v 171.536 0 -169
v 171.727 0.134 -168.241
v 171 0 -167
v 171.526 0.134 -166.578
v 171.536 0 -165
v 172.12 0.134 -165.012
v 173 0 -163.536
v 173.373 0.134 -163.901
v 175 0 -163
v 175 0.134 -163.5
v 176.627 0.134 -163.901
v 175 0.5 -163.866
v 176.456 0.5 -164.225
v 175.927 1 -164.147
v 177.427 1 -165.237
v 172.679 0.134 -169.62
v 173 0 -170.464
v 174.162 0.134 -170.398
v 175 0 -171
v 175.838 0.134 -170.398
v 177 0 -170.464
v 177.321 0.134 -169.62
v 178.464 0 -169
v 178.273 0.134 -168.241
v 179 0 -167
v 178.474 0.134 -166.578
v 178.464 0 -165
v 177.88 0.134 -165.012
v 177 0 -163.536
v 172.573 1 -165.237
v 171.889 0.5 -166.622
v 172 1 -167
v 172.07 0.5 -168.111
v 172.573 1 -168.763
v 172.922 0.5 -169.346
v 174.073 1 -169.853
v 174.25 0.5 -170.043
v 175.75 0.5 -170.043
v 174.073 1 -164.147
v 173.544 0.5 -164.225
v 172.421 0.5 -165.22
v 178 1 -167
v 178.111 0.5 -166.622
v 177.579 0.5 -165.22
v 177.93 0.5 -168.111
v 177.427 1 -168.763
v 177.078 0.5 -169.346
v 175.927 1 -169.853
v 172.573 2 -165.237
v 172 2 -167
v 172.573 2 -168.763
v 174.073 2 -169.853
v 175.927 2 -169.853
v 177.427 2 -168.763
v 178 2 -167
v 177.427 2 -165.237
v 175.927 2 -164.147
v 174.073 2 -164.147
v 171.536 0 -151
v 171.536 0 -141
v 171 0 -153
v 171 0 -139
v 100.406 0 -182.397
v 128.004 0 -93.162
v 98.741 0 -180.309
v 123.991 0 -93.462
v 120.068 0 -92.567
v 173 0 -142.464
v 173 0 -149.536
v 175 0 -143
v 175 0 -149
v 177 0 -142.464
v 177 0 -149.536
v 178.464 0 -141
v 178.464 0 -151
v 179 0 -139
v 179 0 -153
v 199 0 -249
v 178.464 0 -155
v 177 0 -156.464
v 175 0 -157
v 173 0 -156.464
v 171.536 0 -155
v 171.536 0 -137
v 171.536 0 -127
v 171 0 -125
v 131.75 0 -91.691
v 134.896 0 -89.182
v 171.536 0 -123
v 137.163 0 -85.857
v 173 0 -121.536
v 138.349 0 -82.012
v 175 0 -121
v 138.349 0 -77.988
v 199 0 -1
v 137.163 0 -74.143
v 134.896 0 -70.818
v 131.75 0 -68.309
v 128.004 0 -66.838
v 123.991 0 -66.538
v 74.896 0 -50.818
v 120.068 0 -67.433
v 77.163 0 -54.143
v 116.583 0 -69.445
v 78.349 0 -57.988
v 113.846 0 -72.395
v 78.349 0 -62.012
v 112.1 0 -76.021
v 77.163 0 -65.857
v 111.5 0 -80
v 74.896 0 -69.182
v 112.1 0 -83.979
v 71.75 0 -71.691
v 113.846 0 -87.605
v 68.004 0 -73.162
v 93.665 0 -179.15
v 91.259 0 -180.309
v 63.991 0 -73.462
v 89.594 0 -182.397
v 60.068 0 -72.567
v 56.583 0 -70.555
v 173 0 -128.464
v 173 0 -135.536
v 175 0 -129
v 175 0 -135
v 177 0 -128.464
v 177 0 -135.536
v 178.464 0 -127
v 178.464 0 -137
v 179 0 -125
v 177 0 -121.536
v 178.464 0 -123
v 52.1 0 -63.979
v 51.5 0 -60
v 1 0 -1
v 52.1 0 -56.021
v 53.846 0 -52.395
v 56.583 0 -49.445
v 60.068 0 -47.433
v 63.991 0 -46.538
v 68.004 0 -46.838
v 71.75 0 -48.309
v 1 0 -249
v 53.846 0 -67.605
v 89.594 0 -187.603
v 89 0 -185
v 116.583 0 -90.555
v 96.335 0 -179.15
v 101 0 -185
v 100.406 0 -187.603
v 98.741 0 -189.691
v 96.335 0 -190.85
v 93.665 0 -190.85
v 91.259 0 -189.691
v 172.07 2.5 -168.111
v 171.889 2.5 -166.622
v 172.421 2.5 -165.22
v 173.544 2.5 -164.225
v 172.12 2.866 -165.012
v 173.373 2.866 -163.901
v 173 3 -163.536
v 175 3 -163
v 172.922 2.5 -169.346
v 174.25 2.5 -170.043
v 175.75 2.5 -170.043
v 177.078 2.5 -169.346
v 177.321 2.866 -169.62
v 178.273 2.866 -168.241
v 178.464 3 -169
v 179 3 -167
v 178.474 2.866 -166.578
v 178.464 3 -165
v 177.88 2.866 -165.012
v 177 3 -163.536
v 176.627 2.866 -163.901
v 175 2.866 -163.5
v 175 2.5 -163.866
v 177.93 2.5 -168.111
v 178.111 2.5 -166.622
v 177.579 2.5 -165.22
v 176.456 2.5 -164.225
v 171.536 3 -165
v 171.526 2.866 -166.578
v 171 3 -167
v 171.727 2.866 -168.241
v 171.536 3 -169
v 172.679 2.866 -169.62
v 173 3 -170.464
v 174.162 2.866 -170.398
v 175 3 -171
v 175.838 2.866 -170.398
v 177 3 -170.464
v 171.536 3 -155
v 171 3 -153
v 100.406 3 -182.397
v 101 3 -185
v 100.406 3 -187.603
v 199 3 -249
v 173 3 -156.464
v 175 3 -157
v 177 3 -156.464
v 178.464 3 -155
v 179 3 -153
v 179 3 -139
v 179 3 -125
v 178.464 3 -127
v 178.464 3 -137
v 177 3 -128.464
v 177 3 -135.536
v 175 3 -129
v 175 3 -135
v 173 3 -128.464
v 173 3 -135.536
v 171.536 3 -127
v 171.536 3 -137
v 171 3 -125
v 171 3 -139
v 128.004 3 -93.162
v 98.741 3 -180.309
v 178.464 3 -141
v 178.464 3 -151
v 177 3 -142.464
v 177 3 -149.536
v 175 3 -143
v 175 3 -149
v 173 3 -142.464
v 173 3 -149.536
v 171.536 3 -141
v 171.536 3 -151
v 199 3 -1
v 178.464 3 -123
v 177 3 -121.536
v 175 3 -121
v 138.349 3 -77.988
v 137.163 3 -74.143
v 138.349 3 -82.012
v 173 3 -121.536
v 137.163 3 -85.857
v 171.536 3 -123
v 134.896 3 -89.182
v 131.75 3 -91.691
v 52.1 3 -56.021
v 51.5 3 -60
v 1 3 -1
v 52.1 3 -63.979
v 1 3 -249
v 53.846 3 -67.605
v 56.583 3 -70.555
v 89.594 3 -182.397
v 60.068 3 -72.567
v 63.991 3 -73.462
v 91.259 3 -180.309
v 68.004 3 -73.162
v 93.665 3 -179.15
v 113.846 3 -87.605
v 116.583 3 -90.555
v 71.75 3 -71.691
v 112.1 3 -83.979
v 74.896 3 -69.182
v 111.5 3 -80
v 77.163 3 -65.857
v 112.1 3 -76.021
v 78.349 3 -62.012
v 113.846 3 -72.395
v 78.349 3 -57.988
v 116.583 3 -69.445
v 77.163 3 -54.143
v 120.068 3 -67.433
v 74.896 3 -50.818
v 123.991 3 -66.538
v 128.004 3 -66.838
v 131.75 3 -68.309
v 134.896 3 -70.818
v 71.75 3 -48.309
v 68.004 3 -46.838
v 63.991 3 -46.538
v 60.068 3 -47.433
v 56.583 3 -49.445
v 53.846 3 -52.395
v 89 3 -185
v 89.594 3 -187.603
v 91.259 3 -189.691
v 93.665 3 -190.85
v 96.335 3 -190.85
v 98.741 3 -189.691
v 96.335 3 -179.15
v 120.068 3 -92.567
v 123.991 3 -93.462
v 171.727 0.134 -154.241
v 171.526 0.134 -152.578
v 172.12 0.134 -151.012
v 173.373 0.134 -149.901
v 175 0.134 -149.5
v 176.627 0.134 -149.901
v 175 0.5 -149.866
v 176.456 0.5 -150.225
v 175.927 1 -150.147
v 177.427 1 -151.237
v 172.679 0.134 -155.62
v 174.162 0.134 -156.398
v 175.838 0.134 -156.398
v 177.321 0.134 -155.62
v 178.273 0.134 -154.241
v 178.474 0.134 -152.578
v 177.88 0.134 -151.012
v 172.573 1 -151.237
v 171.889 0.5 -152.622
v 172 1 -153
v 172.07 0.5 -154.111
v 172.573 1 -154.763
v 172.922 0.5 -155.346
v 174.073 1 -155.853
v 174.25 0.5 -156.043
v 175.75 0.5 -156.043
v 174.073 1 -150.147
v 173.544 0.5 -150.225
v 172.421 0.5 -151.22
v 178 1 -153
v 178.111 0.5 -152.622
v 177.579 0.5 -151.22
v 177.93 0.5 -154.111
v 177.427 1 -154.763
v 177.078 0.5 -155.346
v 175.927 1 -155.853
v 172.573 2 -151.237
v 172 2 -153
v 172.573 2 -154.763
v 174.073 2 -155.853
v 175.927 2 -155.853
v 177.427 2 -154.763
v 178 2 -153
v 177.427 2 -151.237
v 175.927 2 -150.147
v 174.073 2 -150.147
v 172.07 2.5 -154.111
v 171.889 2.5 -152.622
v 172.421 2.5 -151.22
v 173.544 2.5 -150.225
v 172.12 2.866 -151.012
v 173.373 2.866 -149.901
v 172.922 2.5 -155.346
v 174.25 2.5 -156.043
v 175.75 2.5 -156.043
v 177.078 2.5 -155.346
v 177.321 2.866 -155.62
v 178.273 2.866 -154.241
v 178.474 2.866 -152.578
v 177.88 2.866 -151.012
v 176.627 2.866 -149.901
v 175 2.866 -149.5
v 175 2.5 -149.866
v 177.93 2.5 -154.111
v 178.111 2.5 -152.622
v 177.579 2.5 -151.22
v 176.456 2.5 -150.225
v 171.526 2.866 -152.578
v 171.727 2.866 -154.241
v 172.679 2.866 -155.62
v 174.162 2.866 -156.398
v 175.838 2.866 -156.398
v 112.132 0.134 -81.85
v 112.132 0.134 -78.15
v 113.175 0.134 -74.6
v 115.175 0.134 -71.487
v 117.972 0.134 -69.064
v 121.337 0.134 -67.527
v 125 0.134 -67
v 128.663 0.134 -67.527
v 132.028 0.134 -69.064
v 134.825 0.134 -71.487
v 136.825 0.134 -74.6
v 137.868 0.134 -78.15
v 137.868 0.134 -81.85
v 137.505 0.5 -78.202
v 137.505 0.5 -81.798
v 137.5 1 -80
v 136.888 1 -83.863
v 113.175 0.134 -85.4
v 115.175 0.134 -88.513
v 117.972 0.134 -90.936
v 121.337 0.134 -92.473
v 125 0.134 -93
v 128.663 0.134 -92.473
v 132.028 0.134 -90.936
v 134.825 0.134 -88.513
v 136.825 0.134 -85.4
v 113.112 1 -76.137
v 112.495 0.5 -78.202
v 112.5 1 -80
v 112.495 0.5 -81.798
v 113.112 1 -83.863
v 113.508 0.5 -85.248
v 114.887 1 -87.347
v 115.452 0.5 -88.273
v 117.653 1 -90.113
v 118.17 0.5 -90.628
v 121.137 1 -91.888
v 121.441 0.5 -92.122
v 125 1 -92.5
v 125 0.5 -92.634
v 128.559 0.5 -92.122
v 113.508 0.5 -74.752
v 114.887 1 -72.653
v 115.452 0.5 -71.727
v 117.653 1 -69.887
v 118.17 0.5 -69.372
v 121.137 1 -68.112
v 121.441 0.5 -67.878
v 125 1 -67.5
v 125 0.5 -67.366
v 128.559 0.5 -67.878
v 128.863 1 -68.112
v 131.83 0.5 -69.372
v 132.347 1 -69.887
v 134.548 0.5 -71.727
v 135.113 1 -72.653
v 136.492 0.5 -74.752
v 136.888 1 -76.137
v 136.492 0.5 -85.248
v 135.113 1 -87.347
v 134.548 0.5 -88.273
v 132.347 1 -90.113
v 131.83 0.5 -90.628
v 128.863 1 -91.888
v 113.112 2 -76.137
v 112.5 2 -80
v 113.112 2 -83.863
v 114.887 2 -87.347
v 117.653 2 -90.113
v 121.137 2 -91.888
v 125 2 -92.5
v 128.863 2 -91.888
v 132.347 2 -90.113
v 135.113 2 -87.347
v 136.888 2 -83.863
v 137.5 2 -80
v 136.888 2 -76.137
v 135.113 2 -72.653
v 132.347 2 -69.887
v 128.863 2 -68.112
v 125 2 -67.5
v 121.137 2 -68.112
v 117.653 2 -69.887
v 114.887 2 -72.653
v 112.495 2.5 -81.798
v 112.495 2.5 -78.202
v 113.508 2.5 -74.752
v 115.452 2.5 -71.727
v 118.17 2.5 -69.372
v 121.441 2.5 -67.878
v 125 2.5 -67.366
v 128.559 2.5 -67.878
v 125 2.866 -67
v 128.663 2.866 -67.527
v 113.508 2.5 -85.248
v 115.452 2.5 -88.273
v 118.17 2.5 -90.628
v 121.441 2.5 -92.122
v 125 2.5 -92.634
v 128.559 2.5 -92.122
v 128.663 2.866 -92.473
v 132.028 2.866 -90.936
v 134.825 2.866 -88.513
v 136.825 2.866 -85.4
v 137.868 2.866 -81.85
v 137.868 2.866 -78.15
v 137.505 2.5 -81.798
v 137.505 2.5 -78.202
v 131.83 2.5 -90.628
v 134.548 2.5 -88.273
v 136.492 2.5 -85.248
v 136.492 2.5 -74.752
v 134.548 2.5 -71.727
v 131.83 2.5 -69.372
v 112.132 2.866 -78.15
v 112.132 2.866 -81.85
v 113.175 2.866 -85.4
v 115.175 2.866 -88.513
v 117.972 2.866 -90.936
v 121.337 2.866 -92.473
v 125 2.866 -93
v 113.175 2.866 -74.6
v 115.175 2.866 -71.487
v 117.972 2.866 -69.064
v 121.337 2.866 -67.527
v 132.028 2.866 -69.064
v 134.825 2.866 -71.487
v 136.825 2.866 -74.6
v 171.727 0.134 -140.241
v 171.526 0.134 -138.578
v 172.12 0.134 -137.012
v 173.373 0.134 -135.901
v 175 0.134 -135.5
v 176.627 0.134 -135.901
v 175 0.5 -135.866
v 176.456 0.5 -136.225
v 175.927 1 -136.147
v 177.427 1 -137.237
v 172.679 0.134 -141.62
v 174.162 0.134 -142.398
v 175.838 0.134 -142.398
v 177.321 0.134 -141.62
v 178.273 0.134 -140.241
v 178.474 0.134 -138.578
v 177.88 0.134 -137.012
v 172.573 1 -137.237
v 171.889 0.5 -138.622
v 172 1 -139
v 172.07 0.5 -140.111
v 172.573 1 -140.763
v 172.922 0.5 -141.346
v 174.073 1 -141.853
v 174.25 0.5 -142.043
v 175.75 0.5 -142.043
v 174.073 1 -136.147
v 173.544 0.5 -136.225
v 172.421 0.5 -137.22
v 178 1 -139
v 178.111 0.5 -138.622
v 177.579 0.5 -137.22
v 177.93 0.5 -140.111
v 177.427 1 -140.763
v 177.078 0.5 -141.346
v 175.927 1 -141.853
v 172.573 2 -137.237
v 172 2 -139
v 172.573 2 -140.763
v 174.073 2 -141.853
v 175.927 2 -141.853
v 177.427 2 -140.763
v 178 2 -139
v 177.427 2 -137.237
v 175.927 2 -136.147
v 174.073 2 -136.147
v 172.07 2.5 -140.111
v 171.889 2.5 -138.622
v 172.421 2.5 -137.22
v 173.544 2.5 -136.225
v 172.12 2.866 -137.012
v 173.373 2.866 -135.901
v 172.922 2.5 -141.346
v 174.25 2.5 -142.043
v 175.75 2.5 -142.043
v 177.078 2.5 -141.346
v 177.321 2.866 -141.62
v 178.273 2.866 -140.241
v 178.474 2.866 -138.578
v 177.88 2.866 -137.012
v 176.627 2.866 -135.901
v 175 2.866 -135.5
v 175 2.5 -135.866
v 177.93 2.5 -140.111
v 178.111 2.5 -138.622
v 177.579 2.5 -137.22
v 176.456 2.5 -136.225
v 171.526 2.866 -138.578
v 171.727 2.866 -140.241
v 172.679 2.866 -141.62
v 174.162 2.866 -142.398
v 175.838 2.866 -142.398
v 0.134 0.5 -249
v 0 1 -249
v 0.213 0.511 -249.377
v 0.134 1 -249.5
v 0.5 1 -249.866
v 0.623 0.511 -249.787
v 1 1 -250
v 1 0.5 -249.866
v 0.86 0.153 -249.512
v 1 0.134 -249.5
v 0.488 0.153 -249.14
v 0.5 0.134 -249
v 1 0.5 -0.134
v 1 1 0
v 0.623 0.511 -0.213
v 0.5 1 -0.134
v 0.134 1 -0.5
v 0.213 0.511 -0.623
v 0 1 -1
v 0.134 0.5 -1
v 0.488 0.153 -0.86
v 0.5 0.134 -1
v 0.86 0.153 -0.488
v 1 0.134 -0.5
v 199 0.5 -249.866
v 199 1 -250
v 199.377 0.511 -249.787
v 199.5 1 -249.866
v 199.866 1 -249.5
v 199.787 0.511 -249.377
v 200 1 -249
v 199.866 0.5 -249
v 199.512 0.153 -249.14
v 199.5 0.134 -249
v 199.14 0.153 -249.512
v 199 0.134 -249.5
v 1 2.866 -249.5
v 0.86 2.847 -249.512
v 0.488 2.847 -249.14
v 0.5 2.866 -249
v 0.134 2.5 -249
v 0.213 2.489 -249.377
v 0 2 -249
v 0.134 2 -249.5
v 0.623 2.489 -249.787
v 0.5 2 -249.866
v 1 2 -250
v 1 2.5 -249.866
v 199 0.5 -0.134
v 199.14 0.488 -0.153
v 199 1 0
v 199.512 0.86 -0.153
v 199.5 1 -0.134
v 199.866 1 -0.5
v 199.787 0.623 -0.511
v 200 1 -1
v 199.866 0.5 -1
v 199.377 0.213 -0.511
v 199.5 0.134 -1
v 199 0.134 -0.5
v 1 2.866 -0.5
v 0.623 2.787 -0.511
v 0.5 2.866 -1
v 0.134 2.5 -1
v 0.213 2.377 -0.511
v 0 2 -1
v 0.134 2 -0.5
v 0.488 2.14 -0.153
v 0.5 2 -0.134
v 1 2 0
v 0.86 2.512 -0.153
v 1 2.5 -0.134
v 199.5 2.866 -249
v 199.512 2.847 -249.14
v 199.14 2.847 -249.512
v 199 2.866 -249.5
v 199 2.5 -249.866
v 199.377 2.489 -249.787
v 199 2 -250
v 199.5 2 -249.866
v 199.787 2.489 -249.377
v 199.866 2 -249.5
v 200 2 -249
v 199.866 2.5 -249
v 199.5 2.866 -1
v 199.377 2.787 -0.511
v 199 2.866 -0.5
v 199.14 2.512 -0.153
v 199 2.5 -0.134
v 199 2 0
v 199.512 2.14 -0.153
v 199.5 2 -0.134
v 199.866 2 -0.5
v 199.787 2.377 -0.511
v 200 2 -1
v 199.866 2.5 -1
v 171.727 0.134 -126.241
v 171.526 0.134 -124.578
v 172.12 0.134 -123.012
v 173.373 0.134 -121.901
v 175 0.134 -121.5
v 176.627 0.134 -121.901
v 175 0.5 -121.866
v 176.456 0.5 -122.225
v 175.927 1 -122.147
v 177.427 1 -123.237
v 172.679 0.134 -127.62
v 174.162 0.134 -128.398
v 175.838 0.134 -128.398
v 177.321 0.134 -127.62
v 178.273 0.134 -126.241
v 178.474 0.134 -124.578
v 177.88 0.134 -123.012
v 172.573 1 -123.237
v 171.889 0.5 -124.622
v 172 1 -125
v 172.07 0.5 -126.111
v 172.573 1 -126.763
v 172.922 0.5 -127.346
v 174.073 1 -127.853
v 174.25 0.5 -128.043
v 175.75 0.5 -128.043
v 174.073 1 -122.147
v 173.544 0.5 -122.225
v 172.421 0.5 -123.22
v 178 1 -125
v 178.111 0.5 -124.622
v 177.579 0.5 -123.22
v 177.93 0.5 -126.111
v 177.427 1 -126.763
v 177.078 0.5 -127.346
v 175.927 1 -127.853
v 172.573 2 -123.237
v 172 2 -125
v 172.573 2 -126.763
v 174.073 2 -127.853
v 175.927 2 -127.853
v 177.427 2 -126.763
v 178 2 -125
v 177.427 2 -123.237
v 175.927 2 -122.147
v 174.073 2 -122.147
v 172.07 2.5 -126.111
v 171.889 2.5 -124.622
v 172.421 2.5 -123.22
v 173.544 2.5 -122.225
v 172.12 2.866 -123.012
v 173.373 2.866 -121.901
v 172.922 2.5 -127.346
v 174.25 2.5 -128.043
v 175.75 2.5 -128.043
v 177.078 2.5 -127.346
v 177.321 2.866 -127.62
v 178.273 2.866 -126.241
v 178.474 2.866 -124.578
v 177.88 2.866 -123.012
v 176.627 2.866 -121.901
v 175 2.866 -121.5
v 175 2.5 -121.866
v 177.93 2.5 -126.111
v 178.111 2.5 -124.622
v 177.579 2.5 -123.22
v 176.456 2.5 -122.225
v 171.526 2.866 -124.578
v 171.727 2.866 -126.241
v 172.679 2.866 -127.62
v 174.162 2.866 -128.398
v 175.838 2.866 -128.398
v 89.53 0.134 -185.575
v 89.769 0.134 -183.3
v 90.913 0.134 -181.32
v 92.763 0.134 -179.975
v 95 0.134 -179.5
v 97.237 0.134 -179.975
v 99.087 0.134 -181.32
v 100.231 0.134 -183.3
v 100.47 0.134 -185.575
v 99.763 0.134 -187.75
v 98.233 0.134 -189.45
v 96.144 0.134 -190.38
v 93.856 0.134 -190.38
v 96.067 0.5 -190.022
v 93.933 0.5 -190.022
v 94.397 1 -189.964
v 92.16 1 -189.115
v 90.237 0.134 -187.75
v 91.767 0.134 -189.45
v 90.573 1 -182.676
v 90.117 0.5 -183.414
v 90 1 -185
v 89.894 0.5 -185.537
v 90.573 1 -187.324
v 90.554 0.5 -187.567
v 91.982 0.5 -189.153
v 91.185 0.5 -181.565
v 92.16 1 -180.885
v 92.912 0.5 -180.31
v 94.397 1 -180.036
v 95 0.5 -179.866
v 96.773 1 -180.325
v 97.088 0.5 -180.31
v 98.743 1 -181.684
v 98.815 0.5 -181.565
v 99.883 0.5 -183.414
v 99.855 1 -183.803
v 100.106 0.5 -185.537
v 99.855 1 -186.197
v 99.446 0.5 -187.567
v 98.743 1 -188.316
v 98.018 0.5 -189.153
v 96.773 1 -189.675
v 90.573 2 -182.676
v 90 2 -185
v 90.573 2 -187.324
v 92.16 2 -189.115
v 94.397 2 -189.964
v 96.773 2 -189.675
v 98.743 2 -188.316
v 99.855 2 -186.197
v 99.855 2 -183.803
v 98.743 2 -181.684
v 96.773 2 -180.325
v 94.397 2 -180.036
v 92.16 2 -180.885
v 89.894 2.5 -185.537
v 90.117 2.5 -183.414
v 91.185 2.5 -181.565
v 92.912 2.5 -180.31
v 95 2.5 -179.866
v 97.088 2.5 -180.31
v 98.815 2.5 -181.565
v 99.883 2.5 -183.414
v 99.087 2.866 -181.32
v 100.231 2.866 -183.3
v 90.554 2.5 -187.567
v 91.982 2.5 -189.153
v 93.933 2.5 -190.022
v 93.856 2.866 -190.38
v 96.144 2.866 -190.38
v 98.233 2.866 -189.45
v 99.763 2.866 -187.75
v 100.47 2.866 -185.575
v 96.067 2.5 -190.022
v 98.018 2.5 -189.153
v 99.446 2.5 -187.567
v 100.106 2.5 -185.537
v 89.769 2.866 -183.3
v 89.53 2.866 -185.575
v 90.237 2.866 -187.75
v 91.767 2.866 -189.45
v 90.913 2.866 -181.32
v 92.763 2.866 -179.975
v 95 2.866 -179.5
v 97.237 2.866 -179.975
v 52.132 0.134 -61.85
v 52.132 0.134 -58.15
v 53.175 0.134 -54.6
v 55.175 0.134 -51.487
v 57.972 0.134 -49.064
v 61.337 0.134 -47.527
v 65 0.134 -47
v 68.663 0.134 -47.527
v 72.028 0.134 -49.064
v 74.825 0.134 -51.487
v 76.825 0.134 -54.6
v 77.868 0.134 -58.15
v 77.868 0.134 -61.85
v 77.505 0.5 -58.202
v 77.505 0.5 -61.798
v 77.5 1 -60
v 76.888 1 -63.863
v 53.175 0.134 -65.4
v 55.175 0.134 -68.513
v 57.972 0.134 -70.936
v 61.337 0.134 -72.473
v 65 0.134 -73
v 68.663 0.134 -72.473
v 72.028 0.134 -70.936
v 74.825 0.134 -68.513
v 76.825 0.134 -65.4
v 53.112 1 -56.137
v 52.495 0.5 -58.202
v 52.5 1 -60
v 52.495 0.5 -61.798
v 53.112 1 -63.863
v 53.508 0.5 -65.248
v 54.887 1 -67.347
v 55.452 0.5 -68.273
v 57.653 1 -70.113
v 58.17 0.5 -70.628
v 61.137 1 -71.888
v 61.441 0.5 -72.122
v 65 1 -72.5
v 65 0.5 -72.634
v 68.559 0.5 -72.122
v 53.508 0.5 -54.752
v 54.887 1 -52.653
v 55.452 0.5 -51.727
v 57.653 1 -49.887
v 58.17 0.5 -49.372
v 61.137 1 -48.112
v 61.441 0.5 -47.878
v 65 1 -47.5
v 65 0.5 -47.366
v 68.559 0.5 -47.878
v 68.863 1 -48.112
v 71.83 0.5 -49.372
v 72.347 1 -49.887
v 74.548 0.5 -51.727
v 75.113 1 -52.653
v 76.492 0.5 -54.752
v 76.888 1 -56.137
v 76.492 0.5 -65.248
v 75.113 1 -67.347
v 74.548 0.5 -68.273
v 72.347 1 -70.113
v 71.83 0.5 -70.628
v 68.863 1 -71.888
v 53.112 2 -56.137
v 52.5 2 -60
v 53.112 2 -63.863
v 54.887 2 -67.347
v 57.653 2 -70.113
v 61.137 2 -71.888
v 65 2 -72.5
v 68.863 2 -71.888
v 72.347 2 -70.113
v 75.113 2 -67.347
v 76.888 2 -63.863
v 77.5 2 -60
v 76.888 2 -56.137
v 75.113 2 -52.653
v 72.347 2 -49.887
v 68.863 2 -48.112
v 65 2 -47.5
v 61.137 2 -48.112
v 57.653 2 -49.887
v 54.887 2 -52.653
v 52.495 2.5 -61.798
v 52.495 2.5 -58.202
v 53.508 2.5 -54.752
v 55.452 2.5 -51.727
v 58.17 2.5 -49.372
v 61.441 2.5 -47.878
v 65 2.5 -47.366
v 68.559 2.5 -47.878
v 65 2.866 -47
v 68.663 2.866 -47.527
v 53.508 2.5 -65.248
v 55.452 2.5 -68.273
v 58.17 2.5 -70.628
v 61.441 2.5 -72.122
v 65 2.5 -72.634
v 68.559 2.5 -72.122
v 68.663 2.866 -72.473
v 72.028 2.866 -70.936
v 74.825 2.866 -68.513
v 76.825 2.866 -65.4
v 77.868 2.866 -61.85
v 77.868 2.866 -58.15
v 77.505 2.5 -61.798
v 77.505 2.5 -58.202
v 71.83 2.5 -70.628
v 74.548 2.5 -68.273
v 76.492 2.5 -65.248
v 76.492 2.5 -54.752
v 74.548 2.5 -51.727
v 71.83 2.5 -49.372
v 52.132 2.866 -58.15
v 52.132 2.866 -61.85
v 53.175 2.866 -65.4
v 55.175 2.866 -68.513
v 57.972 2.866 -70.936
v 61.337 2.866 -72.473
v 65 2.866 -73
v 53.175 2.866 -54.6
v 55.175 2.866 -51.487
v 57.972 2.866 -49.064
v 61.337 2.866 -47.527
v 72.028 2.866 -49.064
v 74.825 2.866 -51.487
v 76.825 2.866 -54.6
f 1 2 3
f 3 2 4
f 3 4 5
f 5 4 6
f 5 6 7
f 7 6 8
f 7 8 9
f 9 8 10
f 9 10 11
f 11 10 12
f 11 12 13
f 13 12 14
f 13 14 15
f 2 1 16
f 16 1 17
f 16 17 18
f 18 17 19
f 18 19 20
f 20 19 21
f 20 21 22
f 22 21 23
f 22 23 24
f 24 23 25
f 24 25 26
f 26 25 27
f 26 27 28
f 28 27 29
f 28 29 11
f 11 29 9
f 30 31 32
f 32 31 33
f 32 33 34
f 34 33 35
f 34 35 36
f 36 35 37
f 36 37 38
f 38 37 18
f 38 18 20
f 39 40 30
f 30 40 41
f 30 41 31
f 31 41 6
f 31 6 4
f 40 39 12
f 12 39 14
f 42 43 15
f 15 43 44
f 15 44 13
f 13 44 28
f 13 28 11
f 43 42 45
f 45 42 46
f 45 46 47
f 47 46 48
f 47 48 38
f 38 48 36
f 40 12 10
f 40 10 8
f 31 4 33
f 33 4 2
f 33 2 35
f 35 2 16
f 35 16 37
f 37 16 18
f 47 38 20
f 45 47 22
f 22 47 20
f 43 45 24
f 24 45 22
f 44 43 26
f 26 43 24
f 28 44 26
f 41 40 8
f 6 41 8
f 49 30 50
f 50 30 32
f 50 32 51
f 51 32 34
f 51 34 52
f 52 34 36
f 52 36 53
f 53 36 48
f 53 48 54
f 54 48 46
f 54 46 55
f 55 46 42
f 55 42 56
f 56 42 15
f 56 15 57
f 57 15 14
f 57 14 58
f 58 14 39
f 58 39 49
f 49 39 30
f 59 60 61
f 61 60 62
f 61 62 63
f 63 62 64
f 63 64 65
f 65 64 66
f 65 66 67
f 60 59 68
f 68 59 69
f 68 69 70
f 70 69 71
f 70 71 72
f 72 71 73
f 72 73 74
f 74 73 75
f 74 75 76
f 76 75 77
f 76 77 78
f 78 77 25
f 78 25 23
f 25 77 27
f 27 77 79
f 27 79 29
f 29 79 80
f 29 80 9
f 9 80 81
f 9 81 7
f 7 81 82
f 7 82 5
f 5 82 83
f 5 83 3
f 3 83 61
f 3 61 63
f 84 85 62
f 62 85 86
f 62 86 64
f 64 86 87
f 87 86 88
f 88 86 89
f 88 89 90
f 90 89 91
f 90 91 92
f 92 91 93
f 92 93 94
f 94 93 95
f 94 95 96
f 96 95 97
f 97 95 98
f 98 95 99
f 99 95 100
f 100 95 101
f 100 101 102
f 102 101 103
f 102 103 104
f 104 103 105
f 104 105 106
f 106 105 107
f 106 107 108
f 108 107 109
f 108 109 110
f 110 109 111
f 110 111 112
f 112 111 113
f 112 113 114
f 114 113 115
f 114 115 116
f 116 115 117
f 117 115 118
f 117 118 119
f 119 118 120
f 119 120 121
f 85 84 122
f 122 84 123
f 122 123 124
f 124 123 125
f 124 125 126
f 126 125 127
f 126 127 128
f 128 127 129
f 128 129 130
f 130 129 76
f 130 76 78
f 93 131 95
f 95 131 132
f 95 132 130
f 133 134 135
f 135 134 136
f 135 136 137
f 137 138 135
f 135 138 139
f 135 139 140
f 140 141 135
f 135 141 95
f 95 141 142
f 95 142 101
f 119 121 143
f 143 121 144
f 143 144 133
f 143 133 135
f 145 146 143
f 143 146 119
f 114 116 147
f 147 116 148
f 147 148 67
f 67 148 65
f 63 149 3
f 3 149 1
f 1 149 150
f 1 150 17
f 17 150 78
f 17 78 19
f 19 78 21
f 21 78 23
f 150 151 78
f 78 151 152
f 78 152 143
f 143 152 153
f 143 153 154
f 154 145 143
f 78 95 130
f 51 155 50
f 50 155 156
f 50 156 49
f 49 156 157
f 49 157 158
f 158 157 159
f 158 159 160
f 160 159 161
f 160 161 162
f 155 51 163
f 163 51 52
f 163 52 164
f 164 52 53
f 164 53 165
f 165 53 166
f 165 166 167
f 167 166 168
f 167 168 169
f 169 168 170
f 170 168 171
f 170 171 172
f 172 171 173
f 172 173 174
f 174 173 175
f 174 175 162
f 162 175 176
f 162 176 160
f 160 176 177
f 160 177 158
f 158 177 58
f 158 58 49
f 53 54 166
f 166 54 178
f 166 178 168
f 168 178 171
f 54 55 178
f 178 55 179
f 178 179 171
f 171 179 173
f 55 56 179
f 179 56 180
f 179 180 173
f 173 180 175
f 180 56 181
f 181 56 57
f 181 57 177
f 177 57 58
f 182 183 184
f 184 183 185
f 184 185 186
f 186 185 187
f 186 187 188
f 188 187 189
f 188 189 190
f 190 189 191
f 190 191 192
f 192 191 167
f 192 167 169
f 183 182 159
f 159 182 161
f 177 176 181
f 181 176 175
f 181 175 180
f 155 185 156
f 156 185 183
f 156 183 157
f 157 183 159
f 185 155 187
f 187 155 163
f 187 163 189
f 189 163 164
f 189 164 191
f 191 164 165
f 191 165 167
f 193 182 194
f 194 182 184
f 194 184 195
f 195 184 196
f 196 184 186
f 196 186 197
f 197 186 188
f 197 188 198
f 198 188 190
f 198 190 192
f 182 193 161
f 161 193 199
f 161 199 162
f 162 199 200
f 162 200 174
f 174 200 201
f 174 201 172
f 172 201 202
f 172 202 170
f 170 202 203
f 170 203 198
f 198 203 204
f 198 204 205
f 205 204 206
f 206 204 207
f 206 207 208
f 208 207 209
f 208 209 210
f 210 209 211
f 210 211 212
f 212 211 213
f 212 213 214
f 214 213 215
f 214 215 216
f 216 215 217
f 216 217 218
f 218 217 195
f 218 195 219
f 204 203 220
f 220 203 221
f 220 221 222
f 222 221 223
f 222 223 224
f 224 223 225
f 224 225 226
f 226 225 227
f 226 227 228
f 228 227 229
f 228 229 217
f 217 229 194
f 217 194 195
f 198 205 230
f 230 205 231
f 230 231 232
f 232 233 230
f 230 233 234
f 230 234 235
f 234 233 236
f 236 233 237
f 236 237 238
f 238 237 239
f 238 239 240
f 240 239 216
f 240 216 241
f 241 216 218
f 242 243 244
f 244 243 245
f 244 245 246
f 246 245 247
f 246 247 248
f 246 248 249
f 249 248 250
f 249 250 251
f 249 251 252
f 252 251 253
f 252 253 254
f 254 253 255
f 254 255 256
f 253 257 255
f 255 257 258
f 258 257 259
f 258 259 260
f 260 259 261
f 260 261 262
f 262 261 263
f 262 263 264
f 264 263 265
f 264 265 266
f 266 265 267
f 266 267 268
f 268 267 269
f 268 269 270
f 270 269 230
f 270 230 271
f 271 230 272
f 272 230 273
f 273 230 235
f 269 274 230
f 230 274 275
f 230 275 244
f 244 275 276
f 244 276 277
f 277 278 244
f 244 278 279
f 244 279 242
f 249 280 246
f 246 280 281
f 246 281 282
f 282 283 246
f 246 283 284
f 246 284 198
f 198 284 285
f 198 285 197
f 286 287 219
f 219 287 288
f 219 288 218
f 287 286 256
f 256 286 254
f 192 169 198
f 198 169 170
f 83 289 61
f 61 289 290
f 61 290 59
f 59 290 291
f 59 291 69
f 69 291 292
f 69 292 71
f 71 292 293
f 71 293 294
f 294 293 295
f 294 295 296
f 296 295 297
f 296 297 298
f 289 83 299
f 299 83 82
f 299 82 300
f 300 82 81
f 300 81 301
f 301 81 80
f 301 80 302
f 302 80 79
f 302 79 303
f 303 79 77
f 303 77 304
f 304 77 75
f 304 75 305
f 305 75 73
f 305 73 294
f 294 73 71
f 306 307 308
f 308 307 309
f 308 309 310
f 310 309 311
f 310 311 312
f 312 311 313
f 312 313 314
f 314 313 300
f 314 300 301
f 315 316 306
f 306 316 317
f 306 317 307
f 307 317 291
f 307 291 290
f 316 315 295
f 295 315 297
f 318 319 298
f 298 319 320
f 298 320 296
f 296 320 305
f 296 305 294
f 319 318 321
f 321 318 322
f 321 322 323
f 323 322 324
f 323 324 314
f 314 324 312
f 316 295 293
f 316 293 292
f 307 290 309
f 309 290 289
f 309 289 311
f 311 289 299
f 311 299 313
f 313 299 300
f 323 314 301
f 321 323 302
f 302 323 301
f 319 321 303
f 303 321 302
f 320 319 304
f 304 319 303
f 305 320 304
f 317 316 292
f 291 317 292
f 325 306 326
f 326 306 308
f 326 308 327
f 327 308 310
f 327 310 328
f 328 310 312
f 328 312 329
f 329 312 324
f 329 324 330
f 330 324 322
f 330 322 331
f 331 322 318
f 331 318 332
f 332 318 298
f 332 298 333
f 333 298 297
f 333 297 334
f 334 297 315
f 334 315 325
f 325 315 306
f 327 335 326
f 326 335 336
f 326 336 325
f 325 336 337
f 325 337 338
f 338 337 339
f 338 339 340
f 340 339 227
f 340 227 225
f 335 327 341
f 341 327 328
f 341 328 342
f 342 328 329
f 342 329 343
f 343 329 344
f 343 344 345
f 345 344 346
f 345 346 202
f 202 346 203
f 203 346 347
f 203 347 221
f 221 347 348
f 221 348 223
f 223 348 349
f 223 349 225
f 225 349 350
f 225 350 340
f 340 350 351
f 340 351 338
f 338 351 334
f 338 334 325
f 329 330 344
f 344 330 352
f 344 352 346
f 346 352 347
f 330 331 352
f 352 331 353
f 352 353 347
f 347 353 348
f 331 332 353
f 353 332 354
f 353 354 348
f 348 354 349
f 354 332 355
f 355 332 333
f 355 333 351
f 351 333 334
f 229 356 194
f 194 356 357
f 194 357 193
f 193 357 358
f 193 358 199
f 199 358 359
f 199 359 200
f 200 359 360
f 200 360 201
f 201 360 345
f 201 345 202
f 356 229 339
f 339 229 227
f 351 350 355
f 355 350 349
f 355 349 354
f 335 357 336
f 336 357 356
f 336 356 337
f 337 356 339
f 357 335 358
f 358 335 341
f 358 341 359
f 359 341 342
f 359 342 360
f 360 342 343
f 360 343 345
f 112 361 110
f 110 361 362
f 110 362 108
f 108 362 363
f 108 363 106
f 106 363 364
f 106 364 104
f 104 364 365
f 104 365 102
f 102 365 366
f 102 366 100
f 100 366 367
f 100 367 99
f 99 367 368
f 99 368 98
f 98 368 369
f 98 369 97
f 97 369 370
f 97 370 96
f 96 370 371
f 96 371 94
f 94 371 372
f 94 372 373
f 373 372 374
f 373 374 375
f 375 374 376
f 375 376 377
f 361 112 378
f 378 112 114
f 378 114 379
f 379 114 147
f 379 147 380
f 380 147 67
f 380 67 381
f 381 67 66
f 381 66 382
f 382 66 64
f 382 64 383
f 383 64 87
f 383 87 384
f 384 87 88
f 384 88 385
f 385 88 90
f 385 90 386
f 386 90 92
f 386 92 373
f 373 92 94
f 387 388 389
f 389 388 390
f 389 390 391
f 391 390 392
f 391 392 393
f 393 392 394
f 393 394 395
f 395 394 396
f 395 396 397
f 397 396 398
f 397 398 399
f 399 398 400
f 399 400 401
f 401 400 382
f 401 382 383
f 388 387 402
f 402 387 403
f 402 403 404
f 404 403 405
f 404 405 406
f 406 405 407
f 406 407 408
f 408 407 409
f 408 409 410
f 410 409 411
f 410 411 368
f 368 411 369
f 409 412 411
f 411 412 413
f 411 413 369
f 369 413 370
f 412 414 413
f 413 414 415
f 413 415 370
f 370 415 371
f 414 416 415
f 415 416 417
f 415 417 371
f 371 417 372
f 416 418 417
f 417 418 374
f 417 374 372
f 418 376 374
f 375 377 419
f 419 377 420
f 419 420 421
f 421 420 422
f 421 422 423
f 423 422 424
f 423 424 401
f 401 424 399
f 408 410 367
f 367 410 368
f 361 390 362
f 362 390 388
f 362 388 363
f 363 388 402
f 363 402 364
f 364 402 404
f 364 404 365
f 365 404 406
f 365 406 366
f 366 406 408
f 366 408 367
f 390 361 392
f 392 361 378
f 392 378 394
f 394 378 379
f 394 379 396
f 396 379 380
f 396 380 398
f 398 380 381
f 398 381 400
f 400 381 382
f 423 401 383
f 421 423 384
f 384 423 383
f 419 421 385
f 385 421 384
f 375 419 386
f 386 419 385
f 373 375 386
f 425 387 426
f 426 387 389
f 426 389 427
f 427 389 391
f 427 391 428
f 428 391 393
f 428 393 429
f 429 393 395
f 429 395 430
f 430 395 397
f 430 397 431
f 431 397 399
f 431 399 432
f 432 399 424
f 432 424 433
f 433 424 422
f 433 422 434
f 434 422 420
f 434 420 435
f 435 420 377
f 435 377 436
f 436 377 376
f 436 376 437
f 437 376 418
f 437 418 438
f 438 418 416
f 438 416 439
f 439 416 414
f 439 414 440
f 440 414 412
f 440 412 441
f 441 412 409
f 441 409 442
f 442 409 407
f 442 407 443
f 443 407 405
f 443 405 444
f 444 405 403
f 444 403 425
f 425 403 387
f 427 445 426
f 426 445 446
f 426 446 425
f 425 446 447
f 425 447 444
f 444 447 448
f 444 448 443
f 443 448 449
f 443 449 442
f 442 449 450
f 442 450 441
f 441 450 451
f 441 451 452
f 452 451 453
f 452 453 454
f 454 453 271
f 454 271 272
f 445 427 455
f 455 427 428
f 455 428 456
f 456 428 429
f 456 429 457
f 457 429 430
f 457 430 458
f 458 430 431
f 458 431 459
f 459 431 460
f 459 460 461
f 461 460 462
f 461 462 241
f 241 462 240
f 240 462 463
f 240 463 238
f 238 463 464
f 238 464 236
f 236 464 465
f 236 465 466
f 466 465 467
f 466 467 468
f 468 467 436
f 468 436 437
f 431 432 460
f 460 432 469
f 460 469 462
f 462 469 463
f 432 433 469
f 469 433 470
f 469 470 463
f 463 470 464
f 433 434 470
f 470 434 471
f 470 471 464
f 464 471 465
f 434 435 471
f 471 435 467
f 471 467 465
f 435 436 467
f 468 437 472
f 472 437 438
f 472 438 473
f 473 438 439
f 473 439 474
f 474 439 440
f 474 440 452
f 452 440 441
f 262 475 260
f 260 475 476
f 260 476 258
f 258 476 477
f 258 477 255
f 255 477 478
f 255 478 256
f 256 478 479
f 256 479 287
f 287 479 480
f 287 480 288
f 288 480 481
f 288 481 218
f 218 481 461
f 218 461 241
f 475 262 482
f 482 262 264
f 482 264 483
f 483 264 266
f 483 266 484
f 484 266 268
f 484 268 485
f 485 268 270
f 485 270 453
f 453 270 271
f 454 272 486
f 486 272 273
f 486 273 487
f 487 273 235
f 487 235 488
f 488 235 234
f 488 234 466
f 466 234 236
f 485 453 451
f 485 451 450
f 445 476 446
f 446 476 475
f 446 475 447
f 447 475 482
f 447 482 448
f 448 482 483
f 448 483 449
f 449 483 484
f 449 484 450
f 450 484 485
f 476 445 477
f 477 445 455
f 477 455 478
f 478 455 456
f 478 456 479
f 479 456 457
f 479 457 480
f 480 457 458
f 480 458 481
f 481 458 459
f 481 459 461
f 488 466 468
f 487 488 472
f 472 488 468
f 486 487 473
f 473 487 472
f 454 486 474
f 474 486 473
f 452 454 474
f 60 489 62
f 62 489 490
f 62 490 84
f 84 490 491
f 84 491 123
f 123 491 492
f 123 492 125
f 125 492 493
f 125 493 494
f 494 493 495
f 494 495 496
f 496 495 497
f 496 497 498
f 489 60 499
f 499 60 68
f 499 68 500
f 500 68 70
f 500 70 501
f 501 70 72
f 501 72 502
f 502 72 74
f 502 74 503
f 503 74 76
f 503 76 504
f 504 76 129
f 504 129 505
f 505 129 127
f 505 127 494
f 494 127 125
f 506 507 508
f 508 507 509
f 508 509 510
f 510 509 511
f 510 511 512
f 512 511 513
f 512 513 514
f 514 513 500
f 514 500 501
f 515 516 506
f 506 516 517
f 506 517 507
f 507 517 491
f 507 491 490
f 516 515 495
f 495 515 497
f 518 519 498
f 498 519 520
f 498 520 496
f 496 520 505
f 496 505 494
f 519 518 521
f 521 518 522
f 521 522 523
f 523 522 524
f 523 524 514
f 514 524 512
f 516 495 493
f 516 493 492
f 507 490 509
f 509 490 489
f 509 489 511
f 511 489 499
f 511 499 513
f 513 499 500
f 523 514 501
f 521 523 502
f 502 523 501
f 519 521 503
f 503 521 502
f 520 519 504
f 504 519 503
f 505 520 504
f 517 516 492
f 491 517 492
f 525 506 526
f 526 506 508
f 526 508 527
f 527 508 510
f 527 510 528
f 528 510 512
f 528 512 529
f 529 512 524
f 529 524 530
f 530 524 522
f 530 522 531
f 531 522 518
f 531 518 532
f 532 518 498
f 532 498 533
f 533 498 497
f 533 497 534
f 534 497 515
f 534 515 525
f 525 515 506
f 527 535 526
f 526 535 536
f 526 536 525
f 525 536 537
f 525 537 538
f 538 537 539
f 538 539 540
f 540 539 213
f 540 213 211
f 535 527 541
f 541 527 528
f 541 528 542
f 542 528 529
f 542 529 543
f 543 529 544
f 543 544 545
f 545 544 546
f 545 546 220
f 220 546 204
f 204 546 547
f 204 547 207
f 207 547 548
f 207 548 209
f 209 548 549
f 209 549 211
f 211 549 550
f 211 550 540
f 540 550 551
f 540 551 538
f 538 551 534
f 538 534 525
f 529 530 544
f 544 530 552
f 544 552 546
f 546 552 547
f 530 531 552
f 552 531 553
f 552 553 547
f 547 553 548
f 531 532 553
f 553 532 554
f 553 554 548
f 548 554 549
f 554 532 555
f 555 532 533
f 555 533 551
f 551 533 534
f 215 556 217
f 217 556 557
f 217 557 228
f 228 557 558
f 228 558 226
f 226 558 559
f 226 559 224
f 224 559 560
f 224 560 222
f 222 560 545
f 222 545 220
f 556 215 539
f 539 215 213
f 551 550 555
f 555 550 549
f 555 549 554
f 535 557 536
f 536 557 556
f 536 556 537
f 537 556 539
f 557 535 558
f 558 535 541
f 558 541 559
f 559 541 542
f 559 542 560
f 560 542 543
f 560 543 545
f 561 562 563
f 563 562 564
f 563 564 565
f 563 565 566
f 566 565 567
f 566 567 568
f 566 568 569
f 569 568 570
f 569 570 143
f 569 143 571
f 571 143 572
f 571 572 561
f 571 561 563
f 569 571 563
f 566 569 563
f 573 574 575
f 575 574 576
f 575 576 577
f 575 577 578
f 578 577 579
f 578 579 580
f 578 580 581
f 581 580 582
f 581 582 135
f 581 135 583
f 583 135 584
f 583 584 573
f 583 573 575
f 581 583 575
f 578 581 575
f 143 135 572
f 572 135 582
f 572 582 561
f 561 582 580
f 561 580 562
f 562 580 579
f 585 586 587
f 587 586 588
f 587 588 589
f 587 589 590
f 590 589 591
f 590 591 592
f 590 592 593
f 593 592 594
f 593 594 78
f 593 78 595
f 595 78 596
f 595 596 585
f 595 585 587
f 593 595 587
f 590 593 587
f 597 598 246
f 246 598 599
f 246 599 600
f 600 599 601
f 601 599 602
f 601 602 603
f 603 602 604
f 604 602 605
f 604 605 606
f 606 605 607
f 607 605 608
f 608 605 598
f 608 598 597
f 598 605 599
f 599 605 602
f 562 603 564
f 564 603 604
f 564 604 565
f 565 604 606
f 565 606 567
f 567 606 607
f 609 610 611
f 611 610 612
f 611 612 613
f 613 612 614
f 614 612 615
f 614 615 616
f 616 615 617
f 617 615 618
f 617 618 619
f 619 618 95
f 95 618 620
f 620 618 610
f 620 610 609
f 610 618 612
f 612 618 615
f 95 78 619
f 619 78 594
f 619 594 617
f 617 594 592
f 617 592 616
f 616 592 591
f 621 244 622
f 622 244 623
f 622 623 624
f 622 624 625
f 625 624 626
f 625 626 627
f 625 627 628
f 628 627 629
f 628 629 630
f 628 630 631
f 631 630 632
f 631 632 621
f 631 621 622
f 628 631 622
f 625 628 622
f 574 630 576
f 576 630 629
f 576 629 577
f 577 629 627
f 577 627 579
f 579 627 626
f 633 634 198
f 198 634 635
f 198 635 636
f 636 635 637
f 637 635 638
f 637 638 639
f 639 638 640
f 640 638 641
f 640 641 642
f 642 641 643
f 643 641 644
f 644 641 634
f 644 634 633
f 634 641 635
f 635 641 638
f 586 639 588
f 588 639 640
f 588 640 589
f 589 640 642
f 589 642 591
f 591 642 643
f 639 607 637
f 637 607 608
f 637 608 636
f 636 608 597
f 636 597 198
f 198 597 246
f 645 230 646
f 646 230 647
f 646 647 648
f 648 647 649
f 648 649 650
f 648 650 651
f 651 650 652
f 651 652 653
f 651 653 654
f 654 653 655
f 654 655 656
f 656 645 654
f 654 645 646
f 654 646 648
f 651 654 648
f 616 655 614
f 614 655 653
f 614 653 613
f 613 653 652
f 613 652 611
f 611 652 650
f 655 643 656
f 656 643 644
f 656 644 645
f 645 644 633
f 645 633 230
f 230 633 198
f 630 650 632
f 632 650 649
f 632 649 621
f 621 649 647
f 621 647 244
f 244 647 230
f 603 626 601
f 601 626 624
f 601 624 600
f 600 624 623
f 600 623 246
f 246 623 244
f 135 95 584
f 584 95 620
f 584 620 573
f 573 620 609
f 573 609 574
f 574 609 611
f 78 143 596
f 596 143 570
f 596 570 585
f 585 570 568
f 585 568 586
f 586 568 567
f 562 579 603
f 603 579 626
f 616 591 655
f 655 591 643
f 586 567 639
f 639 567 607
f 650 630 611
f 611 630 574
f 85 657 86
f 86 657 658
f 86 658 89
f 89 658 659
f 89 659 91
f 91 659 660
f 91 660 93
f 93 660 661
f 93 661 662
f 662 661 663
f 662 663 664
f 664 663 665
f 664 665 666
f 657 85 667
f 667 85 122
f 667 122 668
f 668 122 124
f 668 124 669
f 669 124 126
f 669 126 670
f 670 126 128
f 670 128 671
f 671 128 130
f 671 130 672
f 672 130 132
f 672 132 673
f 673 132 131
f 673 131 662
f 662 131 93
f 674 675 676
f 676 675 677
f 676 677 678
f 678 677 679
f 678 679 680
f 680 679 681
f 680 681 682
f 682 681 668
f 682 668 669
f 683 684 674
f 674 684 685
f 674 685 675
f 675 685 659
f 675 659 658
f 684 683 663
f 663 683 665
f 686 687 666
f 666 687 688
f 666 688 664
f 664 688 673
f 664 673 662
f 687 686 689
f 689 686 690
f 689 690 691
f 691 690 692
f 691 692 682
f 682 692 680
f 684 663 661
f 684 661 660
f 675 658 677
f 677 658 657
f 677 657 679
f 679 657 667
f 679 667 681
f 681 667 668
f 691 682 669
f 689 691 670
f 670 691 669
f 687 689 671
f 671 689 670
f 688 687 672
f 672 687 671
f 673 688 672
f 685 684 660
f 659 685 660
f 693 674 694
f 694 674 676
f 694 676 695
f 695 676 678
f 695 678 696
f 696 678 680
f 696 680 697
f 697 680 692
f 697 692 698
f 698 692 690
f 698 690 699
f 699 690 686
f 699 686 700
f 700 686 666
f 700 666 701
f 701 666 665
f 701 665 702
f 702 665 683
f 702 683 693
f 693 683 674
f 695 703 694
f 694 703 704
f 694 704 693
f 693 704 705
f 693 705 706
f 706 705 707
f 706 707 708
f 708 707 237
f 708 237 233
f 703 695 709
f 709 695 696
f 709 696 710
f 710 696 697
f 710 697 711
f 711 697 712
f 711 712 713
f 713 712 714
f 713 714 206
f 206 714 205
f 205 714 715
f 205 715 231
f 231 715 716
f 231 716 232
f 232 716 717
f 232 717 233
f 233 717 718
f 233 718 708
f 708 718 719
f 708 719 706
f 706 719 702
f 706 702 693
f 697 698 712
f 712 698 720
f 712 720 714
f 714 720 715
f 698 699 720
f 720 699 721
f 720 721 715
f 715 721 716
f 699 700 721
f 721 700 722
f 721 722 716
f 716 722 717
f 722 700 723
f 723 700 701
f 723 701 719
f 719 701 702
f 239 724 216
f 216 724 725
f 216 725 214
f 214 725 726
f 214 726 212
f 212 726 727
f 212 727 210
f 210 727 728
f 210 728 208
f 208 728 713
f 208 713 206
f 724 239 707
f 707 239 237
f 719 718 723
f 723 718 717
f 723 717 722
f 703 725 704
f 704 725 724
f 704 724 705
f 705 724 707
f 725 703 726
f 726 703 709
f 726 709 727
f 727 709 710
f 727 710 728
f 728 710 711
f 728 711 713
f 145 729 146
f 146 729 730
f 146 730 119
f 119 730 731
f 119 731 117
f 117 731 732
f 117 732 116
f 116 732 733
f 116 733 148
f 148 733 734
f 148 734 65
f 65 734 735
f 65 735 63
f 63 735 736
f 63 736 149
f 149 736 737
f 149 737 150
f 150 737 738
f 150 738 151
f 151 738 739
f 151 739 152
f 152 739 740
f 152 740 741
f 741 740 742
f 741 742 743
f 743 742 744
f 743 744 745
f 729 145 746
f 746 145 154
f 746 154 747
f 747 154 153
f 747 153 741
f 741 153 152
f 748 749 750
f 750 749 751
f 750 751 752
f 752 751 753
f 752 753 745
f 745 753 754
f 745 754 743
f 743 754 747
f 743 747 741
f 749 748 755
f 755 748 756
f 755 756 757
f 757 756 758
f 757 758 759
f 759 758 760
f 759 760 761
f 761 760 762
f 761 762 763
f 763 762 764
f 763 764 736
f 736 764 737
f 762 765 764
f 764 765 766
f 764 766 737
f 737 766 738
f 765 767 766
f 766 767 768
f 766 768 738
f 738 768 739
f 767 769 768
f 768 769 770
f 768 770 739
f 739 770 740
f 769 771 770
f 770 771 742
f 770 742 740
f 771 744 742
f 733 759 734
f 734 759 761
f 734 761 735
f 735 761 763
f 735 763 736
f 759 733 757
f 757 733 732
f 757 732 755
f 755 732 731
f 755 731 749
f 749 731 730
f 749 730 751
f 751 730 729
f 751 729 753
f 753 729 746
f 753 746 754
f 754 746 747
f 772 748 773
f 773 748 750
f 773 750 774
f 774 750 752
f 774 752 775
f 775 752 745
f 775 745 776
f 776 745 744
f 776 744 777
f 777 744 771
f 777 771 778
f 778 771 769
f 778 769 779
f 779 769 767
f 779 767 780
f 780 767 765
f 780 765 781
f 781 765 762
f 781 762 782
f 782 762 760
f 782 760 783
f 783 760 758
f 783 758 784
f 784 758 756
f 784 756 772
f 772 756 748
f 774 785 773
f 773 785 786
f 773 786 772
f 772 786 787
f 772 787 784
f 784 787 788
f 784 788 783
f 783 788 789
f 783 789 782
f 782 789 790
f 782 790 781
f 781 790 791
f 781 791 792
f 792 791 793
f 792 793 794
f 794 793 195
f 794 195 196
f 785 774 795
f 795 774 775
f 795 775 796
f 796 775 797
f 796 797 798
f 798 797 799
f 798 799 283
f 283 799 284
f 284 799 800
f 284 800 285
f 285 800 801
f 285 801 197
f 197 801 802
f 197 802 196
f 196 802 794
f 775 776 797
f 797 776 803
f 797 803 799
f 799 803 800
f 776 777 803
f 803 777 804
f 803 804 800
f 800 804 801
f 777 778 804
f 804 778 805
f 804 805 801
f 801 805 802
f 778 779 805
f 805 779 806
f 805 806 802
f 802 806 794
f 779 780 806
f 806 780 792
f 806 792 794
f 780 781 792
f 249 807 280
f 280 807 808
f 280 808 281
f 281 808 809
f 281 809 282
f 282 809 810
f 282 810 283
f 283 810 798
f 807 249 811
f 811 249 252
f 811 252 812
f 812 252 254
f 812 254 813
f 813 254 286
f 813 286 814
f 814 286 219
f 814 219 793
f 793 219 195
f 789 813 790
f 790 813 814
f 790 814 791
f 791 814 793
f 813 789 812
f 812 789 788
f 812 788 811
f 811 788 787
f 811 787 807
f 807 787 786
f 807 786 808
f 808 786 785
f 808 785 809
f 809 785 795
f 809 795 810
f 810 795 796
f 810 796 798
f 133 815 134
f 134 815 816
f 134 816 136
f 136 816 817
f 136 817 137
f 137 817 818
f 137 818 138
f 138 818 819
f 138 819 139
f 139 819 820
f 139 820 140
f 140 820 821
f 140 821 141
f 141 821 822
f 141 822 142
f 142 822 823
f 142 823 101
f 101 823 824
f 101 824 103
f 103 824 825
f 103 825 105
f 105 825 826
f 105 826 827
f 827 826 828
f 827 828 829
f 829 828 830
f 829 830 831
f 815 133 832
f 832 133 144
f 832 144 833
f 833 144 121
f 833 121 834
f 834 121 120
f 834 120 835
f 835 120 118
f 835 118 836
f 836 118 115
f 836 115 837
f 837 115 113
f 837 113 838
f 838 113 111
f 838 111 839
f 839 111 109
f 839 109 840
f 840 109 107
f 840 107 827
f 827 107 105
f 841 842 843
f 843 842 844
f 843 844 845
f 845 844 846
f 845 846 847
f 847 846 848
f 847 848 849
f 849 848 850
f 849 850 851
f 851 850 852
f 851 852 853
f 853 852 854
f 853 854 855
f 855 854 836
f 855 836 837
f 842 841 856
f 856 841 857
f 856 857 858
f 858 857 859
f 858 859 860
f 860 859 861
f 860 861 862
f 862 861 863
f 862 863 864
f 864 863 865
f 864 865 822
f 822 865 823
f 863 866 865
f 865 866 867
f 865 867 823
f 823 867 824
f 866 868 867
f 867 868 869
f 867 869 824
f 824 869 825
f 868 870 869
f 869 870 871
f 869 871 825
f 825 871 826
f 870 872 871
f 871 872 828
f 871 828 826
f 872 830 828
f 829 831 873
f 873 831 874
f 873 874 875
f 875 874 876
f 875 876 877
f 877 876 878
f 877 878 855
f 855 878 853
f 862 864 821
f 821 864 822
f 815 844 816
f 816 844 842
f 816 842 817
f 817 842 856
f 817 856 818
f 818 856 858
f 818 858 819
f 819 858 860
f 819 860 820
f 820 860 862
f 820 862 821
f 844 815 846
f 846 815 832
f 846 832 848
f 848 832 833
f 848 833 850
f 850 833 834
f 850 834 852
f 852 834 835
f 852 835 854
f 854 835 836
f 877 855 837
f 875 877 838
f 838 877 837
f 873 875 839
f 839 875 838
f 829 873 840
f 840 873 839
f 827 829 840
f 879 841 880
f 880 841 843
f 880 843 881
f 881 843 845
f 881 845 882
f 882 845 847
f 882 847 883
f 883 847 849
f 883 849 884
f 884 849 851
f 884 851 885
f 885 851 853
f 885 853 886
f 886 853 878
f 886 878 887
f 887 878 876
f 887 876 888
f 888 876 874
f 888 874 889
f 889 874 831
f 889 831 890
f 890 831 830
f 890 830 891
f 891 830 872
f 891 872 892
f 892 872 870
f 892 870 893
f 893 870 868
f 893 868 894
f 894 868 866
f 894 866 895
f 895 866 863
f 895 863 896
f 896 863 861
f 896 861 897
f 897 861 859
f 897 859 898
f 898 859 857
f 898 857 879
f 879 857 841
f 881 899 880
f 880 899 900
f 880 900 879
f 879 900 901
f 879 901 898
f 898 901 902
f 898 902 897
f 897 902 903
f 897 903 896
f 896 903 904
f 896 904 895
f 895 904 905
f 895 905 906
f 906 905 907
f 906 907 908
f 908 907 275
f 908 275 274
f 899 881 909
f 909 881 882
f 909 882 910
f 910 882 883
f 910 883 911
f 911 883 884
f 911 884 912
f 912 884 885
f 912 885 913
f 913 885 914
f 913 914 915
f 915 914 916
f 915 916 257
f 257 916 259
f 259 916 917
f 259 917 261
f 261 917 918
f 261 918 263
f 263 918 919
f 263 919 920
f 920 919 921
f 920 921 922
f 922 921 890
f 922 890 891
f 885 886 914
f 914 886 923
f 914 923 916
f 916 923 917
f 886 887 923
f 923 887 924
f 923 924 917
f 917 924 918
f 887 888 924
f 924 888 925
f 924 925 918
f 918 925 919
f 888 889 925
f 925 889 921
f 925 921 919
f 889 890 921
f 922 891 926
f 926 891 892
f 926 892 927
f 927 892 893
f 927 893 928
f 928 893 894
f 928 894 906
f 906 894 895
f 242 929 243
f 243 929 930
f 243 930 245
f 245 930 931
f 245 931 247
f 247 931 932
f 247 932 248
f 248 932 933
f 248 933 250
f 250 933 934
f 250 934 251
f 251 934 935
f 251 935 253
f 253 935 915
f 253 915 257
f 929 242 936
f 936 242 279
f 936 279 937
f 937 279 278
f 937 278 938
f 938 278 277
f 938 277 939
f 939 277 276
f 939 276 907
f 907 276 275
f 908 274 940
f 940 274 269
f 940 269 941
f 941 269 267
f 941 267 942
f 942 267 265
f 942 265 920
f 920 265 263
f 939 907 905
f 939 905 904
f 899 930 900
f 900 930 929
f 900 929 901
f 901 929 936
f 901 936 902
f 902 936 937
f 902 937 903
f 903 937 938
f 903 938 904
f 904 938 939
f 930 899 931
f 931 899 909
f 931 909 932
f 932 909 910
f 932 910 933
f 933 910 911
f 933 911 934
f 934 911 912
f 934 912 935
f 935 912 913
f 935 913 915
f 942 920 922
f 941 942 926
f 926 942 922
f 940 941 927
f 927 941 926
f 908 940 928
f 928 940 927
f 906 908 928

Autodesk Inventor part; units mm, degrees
ref_plane "YZ Plane" through (0, 0, 0) normal (1, 0, 0) x (0, 1, 0)
ref_plane "XZ Plane" through (0, 0, 0) normal (0, 1, 0) x (-1, 0, 0)
ref_plane "XY Plane" through (0, 0, 0) normal (0, 0, 1) x (1, 0, 0)
sketch "page_lines" plane through (0, 0, 0) normal (0, 1, 0) x (-1, 0, 0)
  line L0 (0, 0) -> (-200, 0)
  line L1 (-200, 0) -> (-200, -250)
  line L2 (-200, -250) -> (0, -250)
  line L3 (0, -250) -> (0, 0)
  circle A0 centre (-65, -60) radius 6
  circle A1 centre (-125, -80) radius 6
  circle A2 centre (-65, -60) radius 12.5
  circle A3 centre (-65, -60) radius 8.5
  circle A4 centre (-125, -80) radius 8.5
  circle A5 centre (-125, -80) radius 12.5
  circle A6 centre (-175, -125) radius 3
  line L4 (-175, -125) -> (-175, -209)
  line L5 (-175, -125) -> (-91, -125) construction
  circle A7 centre (-175, -139) radius 3
  circle A8 centre (-175, -153) radius 3
  circle A9 centre (-175, -167) radius 3
  circle A10 centre (-175, -181) radius 3
  circle A11 centre (-175, -195) radius 3
  circle A12 centre (-175, -209) radius 3
  circle A13 centre (-95, -185) radius 2.5
  circle A14 centre (-95, -185) radius 5
  point P0 (-200, -125)
  dimension "d0" = 200
  dimension "d1" = 250
  dimension "d2" = 12
  dimension "d3" = 12
  dimension "d4" = 25
  dimension "d5" = 17
  dimension "d6" = 17
  dimension "d7" = 25
  dimension "d8" = 75
  dimension "d9" = 80
  dimension "d10" = 65
  dimension "d11" = 60
  dimension "d12" = 6
  dimension "d13" = 84
  dimension "d14" = 90
  dimension "d15" = 25
  dimension "d16" = 125
  dimension "d19" = 14
  dimension "d24" = 5
  dimension "d25" = 10
  dimension "d26" = 65
  dimension "d27" = 95
extrude "nand" add sketch "page_lines" along normal blind 3 contours L3 L2 L1 L0 | A10 L4 | L4 A10 | A11 L4 | L4 A11 | A12
fillet "Fillet1" radius 1 26 edges at (77.5, 3, -60) (77.5, 0, -60) (100, 3, -185) (100, 0, -185) (178, 3, -125) (178, 0, -125) (200, 3, -125) (200, 0, -125) (100, 0, 0) (100, 3, 0) (200, 1.5, 0) (0, 1.5, 0) (0, 3, -125) (0, 0, -125) (0, 1.5, -250) (100, 3, -250) (100, 0, -250) (200, 1.5, -250) (178, 3, -139) (178, 0, -139) (137.5, 3, -80) (137.5, 0, -80) (178, 3, -153) (178, 0, -153) (178, 3, -167) (178, 0, -167)
properties part number "pages_nand"
